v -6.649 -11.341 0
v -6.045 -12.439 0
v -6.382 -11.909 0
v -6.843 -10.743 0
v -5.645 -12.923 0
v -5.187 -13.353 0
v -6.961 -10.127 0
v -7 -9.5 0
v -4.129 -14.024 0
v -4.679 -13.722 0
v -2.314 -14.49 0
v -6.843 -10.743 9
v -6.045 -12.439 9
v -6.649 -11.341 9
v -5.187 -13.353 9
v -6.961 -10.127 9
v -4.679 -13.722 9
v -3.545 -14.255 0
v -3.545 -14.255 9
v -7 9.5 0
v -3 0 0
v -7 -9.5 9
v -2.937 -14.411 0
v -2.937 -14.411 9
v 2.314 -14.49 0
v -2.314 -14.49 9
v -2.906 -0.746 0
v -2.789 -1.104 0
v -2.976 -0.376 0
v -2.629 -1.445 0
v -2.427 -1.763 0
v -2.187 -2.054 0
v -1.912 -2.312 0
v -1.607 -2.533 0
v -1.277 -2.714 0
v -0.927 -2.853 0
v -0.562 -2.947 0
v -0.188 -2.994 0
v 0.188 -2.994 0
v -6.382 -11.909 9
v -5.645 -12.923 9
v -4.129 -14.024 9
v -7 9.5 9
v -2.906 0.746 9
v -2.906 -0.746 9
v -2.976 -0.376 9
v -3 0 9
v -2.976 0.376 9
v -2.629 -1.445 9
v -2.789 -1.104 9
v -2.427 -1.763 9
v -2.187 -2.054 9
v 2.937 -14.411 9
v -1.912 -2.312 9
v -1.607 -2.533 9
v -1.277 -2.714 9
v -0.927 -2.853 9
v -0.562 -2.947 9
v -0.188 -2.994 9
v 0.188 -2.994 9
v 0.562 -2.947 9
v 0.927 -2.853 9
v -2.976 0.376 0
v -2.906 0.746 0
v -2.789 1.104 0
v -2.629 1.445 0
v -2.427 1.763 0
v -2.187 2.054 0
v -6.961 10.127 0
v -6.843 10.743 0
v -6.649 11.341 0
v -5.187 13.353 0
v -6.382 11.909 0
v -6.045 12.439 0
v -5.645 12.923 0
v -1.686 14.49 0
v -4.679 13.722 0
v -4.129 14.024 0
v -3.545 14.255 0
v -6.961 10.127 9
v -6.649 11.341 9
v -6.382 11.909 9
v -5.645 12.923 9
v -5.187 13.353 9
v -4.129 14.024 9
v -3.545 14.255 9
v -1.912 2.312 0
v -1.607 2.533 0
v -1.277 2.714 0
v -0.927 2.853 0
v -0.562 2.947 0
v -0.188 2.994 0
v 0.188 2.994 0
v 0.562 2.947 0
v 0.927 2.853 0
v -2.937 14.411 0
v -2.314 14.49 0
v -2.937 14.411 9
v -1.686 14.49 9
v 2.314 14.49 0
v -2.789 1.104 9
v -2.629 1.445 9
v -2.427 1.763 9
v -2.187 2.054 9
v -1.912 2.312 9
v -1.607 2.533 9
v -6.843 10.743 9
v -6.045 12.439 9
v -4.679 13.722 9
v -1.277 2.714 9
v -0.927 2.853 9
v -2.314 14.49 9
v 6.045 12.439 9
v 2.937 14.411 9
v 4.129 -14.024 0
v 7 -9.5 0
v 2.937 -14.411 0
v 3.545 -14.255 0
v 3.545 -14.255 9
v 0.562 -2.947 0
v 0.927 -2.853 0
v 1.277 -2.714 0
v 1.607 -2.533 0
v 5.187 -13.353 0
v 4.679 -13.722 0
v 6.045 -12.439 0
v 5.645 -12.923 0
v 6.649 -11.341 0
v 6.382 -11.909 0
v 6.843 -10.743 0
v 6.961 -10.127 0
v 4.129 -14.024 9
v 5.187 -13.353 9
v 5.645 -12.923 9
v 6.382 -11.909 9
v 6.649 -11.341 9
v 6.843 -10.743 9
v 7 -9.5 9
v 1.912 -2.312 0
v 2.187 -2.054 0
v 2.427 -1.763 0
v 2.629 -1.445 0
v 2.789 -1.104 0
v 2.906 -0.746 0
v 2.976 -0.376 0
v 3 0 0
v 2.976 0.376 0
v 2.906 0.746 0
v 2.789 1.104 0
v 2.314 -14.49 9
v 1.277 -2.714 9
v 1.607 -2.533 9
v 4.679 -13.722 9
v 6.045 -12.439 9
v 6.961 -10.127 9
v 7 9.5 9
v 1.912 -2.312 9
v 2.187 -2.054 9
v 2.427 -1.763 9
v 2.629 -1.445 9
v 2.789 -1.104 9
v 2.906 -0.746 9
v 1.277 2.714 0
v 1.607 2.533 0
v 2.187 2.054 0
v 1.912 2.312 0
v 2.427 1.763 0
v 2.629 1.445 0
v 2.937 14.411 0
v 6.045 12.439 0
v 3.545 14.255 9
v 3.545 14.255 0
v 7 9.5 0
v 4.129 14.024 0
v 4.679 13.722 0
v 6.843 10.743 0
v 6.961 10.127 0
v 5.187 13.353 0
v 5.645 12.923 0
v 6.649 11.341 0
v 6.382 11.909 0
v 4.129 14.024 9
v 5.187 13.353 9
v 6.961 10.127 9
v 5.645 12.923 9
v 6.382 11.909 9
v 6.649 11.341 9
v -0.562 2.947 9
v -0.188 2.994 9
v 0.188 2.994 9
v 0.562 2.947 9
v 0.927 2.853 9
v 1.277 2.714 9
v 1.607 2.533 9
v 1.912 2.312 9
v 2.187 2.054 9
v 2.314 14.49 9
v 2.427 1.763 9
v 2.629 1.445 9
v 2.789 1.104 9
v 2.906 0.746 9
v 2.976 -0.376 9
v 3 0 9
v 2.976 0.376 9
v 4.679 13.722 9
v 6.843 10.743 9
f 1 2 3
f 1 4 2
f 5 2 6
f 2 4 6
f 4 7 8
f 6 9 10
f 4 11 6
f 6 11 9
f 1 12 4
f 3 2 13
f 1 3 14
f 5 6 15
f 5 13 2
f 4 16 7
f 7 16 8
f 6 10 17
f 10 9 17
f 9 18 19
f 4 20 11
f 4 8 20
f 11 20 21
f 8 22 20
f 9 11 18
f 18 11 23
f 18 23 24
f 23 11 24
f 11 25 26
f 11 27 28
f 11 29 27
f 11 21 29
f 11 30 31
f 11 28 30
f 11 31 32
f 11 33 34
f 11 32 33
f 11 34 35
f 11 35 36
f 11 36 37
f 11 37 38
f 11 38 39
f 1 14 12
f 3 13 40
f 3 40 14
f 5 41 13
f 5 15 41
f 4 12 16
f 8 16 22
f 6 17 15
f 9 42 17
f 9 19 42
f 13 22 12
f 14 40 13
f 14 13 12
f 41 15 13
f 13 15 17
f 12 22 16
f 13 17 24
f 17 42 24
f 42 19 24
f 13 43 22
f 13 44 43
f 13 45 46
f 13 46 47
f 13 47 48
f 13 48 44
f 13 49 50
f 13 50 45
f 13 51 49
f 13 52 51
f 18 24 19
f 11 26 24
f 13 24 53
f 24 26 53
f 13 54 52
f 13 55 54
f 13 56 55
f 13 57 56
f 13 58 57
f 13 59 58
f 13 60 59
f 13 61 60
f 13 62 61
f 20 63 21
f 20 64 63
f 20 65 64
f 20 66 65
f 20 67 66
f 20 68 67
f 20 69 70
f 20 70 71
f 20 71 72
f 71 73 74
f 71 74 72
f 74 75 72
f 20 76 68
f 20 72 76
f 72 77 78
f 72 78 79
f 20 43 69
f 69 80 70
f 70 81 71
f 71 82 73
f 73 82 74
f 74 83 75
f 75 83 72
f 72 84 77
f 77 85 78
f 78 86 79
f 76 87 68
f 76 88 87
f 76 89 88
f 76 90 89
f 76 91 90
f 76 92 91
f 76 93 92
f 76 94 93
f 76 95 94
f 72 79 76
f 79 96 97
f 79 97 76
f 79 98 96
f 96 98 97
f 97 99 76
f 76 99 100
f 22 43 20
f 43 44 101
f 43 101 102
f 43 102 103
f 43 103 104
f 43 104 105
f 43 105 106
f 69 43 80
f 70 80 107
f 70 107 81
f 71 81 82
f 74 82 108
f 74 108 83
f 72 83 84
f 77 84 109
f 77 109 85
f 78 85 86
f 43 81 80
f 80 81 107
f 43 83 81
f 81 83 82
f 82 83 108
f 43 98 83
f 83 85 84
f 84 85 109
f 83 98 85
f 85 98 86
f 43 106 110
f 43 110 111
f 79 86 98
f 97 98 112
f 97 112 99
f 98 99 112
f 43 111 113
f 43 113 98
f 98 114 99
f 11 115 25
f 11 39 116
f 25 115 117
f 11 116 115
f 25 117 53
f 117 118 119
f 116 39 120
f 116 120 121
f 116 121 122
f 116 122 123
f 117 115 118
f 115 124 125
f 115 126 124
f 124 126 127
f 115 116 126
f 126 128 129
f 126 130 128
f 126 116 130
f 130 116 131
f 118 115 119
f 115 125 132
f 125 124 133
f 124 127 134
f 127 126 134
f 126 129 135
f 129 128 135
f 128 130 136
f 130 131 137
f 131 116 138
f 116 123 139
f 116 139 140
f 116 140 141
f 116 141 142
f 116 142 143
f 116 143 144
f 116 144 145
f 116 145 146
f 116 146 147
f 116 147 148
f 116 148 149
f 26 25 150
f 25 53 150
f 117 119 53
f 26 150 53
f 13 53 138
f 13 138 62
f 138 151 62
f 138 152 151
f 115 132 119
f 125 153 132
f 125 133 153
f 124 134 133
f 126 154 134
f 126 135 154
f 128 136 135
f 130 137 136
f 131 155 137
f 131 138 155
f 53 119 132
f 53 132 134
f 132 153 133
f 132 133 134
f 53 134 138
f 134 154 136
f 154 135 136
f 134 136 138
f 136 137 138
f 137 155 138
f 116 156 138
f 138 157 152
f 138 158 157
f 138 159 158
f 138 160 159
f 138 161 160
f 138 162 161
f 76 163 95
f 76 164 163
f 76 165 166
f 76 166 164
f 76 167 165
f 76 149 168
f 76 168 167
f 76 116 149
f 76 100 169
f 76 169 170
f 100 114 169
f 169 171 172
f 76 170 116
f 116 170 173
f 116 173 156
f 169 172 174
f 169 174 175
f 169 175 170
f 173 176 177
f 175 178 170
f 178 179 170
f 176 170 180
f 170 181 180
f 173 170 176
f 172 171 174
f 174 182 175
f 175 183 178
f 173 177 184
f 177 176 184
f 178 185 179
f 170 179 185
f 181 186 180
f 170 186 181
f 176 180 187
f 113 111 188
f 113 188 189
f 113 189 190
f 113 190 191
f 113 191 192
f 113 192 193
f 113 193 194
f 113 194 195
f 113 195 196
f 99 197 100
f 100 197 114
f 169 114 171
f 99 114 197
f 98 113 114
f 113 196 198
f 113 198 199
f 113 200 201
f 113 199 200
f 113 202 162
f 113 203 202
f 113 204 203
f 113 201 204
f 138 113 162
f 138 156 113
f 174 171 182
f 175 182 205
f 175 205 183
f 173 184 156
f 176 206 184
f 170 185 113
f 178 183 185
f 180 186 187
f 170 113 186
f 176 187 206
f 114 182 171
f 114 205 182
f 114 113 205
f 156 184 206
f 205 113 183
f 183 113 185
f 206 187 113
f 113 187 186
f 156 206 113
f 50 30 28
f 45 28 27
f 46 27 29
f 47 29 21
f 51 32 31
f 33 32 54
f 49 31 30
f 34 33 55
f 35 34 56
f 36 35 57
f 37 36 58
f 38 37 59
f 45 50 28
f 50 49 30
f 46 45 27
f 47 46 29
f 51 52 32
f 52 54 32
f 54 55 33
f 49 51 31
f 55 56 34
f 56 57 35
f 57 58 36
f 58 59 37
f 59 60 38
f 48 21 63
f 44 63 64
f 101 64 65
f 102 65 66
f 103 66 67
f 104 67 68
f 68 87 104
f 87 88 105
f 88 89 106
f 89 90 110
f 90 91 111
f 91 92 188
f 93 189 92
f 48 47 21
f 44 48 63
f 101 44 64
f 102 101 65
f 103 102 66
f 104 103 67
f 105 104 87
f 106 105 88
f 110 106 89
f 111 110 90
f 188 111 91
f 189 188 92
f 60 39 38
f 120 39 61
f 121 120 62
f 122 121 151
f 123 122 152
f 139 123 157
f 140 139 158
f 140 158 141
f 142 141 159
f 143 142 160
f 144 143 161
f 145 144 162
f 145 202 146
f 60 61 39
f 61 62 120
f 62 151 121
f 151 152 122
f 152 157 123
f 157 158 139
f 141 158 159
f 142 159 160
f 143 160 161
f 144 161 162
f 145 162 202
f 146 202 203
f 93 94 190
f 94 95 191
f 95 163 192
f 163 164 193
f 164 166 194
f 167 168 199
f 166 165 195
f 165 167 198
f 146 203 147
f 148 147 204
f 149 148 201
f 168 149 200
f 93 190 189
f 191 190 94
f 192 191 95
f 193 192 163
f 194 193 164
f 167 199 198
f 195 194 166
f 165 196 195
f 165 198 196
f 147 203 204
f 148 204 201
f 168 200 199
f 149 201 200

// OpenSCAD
$fn = 50;

difference() {
	union() {
		hull() {
			translate(v = [-2.0, 9.5, 0]) {
				cylinder(h = 9, r = 5);
			}
			translate(v = [2.0, 9.5, 0]) {
				cylinder(h = 9, r = 5);
			}
			translate(v = [-2.0, -9.5, 0]) {
				cylinder(h = 9, r = 5);
			}
			translate(v = [2.0, -9.5, 0]) {
				cylinder(h = 9, r = 5);
			}
		}
	}
	union() {
		cylinder(h = 9, r = 3.0);
	}
}
